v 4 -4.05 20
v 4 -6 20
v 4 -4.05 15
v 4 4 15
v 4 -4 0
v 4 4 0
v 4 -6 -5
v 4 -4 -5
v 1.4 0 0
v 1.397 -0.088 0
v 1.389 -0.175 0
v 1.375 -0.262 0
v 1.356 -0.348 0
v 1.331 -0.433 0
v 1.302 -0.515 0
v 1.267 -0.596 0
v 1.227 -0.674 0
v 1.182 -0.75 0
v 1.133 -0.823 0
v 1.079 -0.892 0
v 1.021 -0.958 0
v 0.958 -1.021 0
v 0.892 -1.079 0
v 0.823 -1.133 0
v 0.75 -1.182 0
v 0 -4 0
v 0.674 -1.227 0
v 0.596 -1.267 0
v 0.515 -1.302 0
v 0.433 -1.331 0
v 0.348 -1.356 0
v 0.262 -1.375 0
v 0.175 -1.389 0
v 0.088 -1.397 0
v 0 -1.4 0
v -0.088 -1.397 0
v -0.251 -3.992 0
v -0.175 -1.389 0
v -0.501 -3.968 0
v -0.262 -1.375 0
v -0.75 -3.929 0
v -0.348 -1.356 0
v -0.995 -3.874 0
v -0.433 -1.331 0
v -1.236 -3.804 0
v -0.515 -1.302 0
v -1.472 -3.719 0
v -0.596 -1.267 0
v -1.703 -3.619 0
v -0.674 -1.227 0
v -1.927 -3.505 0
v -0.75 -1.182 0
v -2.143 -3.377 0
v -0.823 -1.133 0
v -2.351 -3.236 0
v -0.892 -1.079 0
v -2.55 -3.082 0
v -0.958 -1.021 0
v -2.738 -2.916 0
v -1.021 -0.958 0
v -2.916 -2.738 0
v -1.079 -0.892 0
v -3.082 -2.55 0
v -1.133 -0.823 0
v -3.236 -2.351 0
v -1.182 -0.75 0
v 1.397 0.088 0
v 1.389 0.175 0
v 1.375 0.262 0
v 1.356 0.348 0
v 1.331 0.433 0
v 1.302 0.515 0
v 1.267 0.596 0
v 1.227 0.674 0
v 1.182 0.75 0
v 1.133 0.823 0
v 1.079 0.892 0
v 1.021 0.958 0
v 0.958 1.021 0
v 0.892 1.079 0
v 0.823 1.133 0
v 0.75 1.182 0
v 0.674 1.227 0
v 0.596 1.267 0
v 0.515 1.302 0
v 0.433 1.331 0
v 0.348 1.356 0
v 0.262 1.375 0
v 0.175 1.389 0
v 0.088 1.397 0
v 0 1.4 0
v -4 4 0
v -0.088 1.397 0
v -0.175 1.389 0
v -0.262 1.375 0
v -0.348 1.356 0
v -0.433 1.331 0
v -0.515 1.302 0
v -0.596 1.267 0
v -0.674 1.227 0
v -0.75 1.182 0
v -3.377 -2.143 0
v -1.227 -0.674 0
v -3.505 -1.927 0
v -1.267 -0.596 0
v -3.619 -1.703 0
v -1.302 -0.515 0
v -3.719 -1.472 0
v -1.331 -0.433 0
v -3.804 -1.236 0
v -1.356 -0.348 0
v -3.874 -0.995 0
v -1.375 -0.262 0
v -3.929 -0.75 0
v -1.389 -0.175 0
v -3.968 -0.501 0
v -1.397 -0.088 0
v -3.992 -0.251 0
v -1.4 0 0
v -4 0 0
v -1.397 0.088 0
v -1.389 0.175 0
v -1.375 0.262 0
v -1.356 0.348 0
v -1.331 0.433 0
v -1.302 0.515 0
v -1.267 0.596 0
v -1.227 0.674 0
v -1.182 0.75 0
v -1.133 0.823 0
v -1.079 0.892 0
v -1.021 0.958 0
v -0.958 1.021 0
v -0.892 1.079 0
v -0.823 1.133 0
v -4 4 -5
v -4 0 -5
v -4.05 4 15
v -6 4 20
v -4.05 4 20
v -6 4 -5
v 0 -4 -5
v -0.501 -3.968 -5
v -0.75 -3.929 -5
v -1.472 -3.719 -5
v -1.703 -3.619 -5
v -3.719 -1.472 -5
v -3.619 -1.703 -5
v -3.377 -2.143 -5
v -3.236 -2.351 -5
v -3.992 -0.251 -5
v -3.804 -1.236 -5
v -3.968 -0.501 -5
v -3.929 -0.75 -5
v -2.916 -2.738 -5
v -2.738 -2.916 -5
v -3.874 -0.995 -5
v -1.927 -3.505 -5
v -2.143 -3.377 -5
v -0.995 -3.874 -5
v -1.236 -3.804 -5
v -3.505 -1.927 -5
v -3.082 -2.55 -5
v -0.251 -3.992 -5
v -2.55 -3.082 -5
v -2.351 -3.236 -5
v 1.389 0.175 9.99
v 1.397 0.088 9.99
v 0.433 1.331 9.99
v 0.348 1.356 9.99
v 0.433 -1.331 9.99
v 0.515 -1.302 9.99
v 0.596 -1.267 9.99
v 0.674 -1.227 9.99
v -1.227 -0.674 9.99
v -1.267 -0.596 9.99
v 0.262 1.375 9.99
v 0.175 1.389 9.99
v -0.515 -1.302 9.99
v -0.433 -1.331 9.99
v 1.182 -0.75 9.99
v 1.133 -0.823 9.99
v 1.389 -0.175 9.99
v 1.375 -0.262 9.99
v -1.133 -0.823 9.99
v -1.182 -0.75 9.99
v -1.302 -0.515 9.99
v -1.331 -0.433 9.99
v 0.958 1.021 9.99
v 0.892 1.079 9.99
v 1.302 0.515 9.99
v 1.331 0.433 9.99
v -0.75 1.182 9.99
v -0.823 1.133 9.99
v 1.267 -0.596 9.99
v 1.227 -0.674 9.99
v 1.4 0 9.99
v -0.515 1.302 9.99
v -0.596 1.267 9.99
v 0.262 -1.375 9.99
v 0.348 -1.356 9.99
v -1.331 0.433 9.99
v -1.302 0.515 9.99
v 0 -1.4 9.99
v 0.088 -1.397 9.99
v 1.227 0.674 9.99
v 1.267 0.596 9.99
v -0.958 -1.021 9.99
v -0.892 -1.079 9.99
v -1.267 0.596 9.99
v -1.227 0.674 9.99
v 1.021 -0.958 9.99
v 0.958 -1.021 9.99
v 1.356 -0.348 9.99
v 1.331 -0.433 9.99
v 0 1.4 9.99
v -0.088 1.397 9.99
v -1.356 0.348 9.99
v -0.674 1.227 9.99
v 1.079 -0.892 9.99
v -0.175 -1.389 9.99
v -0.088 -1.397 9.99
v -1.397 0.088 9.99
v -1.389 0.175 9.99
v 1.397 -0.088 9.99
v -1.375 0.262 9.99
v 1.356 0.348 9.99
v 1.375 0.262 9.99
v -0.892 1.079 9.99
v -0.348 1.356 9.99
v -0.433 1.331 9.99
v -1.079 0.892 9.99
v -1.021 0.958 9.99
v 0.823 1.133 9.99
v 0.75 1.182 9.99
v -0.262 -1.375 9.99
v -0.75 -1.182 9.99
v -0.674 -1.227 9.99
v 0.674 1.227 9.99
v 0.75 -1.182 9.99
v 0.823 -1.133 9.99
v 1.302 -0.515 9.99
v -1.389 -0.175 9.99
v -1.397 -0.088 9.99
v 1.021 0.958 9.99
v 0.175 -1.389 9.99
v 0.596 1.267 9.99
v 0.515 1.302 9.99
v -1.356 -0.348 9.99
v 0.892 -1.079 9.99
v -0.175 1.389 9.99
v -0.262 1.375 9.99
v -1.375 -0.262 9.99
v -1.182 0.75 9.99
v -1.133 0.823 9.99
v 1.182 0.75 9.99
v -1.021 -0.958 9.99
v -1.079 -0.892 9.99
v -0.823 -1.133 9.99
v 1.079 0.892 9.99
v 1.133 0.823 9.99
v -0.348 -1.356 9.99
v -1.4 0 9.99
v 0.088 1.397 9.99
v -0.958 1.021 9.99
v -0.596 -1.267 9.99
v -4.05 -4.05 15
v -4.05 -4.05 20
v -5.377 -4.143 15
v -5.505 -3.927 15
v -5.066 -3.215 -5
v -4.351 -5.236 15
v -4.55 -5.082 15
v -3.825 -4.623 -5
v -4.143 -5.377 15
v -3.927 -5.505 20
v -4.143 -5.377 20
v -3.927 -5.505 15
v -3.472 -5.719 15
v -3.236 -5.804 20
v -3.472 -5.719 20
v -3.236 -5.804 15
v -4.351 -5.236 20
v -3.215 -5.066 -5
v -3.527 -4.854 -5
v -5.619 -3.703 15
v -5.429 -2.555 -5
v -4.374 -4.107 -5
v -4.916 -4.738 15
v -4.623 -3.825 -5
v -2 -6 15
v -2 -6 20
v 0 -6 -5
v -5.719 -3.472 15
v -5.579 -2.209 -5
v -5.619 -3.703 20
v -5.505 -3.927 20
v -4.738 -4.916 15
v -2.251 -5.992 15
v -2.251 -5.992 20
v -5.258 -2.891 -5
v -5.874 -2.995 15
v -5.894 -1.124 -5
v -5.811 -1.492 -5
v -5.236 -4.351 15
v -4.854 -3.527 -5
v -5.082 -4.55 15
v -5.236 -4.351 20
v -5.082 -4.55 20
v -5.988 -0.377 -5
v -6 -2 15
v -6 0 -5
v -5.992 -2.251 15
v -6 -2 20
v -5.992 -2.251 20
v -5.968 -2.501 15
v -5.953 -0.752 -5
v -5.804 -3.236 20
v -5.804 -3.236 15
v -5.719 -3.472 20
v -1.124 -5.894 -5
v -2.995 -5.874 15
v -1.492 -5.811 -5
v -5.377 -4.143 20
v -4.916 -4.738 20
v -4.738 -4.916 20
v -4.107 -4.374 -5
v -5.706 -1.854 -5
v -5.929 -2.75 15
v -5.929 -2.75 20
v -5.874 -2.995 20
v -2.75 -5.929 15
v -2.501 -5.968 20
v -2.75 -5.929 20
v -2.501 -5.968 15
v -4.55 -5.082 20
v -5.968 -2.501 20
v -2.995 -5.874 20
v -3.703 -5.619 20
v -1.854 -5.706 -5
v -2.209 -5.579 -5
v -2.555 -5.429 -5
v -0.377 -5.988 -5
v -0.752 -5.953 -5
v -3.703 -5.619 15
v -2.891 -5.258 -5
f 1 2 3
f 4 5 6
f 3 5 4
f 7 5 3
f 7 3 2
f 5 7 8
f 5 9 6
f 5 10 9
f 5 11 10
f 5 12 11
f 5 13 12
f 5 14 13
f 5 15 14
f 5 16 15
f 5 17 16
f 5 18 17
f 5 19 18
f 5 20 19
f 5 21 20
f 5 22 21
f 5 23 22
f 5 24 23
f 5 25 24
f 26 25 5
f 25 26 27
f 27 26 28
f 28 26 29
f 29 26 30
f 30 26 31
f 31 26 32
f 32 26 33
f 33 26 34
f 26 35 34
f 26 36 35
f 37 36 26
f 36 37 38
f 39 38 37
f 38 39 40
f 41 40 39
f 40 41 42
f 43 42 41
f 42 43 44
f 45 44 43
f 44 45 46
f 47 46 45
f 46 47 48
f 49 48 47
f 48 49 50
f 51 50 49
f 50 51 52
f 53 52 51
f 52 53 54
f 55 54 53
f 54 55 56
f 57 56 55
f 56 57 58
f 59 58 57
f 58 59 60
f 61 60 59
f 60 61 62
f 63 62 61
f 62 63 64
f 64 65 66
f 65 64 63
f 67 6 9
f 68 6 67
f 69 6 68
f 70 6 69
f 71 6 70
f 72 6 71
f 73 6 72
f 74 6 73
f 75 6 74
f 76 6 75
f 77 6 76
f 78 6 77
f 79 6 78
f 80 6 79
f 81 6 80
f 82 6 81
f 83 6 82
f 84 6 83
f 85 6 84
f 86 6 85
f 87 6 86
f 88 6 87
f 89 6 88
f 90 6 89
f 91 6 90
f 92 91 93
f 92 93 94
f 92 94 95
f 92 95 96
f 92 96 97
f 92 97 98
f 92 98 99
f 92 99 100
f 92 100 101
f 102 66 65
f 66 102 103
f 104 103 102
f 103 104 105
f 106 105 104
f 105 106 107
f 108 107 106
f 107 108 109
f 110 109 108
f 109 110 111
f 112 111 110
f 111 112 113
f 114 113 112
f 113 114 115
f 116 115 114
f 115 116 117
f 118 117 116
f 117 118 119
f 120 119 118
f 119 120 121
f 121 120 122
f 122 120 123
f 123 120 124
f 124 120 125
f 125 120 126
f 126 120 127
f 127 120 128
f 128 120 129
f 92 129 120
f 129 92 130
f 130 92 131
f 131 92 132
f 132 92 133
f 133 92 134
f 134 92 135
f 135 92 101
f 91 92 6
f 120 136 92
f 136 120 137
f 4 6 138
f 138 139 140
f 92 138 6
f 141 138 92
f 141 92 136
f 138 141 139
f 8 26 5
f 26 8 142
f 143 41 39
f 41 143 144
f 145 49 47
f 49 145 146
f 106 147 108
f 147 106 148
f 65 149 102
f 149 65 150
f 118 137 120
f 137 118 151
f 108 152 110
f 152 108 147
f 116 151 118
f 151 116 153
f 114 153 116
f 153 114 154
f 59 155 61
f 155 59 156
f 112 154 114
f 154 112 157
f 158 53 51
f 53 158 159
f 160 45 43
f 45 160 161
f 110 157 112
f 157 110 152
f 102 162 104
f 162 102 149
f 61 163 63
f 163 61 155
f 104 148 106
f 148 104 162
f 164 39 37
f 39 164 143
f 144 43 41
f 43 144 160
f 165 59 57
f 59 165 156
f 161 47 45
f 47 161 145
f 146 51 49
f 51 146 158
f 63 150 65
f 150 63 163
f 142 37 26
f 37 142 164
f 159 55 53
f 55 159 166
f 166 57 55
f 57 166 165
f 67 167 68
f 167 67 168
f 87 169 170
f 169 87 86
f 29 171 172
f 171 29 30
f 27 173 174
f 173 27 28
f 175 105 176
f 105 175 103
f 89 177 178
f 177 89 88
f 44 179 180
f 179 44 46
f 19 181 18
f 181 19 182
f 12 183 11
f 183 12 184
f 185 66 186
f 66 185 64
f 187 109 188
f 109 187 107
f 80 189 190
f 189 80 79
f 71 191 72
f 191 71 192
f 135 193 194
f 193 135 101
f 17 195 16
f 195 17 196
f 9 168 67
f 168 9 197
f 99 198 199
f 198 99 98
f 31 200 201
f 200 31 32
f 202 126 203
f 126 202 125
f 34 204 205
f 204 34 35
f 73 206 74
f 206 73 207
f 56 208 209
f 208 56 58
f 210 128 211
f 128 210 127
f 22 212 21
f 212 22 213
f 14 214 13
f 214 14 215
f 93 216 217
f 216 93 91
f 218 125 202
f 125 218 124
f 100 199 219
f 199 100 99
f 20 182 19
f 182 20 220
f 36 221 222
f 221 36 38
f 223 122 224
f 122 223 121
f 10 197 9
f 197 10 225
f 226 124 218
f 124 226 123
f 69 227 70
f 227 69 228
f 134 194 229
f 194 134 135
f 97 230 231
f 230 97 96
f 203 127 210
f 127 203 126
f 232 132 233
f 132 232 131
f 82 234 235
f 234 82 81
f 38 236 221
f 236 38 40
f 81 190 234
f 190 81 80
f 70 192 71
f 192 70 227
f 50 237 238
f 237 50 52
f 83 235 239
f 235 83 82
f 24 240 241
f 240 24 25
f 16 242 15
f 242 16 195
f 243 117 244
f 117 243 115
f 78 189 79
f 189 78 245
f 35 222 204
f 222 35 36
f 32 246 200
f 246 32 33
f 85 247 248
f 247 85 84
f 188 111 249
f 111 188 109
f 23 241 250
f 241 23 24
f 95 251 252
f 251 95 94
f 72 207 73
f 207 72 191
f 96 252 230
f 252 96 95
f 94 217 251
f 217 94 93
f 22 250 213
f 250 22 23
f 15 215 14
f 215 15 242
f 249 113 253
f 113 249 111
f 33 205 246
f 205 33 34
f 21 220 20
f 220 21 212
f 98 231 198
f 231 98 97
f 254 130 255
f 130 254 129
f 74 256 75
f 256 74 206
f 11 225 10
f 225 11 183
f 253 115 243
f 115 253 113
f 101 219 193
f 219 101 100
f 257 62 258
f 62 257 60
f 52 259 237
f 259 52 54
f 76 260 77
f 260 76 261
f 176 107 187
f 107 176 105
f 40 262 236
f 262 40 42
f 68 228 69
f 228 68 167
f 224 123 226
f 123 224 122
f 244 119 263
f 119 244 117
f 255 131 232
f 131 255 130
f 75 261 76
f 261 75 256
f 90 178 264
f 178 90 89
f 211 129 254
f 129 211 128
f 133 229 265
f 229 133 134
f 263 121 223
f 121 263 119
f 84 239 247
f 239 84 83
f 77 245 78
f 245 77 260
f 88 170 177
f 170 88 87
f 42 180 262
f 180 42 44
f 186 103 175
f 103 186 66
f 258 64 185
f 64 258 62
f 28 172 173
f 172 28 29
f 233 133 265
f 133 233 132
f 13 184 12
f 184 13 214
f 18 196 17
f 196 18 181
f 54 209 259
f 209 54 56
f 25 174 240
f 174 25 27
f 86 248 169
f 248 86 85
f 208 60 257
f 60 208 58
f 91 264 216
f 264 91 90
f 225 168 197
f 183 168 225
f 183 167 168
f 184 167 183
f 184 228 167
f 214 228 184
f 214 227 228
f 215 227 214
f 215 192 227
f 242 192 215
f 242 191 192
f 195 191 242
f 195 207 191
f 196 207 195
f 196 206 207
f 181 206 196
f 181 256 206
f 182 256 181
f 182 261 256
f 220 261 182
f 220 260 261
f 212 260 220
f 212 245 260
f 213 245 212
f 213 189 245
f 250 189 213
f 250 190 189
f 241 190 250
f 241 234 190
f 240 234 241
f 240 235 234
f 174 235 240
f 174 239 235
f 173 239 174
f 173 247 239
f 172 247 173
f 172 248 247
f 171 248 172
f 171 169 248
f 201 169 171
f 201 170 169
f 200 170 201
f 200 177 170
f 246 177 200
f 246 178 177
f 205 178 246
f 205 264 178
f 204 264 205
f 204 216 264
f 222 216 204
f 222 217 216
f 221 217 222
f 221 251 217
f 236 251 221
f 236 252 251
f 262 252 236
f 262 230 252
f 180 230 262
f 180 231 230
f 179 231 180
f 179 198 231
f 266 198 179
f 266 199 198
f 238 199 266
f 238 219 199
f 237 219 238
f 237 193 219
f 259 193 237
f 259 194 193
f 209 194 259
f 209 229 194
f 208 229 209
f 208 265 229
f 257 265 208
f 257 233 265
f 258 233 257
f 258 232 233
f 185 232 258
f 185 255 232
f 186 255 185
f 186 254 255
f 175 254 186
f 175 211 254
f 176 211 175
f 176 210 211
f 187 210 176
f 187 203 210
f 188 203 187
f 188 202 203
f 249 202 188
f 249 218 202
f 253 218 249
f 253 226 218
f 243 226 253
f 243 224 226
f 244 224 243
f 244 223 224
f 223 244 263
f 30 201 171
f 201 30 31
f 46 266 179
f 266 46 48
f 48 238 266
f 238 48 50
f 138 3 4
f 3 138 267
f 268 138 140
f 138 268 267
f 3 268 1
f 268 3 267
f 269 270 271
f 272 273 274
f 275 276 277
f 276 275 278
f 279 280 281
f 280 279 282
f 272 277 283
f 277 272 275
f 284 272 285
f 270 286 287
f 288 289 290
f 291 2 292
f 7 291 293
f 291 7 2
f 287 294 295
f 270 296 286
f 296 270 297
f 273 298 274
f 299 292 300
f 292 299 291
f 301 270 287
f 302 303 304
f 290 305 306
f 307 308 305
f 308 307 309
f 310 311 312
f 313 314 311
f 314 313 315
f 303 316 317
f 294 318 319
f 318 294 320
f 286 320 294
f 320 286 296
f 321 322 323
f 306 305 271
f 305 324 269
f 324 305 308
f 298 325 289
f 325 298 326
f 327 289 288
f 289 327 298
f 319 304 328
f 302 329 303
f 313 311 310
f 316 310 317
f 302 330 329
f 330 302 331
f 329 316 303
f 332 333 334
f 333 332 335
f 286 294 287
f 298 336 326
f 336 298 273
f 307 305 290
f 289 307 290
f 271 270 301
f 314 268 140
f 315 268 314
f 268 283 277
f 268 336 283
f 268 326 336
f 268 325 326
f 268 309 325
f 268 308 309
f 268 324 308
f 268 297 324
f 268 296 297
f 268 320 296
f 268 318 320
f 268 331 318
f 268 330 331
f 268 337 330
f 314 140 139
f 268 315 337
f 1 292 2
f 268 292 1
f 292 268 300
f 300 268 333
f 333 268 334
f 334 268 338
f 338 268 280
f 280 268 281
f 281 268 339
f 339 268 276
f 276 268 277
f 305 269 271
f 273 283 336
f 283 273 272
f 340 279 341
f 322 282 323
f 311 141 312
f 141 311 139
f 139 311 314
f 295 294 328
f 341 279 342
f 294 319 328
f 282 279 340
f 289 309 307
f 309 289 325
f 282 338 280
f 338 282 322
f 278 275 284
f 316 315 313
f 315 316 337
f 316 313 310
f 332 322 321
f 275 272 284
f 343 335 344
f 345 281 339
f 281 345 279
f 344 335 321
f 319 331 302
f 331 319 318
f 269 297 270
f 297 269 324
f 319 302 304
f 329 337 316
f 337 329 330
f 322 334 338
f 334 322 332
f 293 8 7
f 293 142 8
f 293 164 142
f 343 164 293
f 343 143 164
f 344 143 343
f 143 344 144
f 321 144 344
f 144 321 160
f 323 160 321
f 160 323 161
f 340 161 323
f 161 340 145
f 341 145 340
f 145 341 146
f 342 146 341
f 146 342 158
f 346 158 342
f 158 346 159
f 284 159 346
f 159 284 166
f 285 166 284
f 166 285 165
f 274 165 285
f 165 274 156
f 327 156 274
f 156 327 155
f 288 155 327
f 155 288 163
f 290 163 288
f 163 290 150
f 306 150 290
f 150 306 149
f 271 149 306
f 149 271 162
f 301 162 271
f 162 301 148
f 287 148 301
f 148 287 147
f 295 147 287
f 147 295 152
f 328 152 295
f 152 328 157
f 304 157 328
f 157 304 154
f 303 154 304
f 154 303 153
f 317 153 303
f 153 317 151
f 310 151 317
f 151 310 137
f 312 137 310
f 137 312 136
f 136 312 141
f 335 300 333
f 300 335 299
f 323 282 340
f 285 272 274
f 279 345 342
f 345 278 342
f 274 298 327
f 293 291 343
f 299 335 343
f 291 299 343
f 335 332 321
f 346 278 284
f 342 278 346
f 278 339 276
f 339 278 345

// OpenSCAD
$fn = 100;

if($preview){
    pcb();
    translate([1*44.3/2,1*35.3/2,1.6])rotate([0,0,180])stand();
    translate([1*44.3/2,-1*35.3/2,1.6])rotate([0,0,90])stand();
    translate([-1*44.3/2,1*35.3/2,1.6])rotate([0,0,270])stand();
    translate([-1*44.3/2,-1*35.3/2,1.6])rotate([0,0,0])stand();
    translate([0,0,1.6+15])sensor();
} else {
    stand();
}

module stand(h=15,h2=5){
    color("pink")
    difference(){
        union(){
            // outer hull
            hull(){
                // inner structure
                union(){
                    translate([0,2,h/2])cube([8,4,h],center=true);
                    translate([2,0,h/2])cube([4,8,h],center=true);
                    cylinder(r=4,h=h);
                }
                // lower hull
                union(){
                    translate([0,2,-h2/2])cube([12,4,h2],center=true);
                    translate([2,0,-h2/2])cube([4,12,h2],center=true);
                    translate([0,0,-h2])cylinder(r=6,h=h2);
                }
                // upper hull
                union(){
                    translate([0,1,h+h2/2])cube([12,6,h2],center=true);
                    translate([1,0,h+h2/2])cube([6,12,h2],center=true);
                    translate([-2,-2,h])cylinder(r=4,h=h2);
                }
            }
        } union(){
            // screwholes
            translate([0,0,-0.01])cylinder(d=2.8,h=h/3*2);
            // upper cutout
            translate([0,0,h+h/4])cube([8.1,8.1,h/2],center=true);
            // PCB cutout
            union(){
                translate([0,2,-h/2])cube([8,4,h],center=true);
                translate([2,0,-h/2])cube([4,8,h],center=true);
                translate([0,6,0])cube([12,4,h*3],center=true);
                translate([6,0,0])cube([4,12,h*3],center=true);
                translate([0,0,-h])cylinder(r=4,h=h);
            }
        }
    }
}

module pcb(thickness=1.6){
    difference(){
        union(){
            // PCB
            color("green")
            minkowski(){
                r=4;
                translate([0,0,thickness/2-0.1/2])cube([52.3-r-r,43.4-r-r, thickness-0.1],center=true);
                cylinder(r=r,h=0.1);
            }
            // Screwholeplates
            color("gold")
            for(i = [-1:2:1]){
                for(j = [-1:2:1]){
                    translate([i*44.3/2,j*35.3/2,0])cylinder(d=6.4,h=thickness+0.01);
                }
            }
            // ESP32
            translate([-1,10,thickness])
            union(){
                color("black")translate([0,0,0.6/2])cube([25,18,0.6],center=true);
                color("silver")translate([-2.75,0,0.6+1.2/2])cube([18,16.5,1.2],center=true);
            }
            // USB
            color("silver")translate([-22,8,3.2/2+thickness])cube([9,7.4,3.2],center=true);
        } union(){
            // Screwholes
            for(i = [-1:2:1]){
                for(j = [-1:2:1]){
                    translate([i*44.3/2,j*35.3/2,-thickness/2])cylinder(d=3.2,h=thickness*2);
                }
            }
        }
    }
}

module sensor(){
    difference(){
        union(){
            // main body
            color("DarkSlateGray")translate([0,0,13.2/2])cube([52.3,43.3,13.2],center=true);
            // fan
            color("DarkSlateGray")translate([52.2/2-27.24/2,-43.2/2+15/2,22.3/2])cube([27.24,15,22.3],center=true);
            // intake
            color("DarkSlateGray")translate([-52.2/2+27.24/2,-43.2/2+10/2,16.7/2])cube([13.69,10,16.7],center=true);
        } union(){
        }
    }
}
